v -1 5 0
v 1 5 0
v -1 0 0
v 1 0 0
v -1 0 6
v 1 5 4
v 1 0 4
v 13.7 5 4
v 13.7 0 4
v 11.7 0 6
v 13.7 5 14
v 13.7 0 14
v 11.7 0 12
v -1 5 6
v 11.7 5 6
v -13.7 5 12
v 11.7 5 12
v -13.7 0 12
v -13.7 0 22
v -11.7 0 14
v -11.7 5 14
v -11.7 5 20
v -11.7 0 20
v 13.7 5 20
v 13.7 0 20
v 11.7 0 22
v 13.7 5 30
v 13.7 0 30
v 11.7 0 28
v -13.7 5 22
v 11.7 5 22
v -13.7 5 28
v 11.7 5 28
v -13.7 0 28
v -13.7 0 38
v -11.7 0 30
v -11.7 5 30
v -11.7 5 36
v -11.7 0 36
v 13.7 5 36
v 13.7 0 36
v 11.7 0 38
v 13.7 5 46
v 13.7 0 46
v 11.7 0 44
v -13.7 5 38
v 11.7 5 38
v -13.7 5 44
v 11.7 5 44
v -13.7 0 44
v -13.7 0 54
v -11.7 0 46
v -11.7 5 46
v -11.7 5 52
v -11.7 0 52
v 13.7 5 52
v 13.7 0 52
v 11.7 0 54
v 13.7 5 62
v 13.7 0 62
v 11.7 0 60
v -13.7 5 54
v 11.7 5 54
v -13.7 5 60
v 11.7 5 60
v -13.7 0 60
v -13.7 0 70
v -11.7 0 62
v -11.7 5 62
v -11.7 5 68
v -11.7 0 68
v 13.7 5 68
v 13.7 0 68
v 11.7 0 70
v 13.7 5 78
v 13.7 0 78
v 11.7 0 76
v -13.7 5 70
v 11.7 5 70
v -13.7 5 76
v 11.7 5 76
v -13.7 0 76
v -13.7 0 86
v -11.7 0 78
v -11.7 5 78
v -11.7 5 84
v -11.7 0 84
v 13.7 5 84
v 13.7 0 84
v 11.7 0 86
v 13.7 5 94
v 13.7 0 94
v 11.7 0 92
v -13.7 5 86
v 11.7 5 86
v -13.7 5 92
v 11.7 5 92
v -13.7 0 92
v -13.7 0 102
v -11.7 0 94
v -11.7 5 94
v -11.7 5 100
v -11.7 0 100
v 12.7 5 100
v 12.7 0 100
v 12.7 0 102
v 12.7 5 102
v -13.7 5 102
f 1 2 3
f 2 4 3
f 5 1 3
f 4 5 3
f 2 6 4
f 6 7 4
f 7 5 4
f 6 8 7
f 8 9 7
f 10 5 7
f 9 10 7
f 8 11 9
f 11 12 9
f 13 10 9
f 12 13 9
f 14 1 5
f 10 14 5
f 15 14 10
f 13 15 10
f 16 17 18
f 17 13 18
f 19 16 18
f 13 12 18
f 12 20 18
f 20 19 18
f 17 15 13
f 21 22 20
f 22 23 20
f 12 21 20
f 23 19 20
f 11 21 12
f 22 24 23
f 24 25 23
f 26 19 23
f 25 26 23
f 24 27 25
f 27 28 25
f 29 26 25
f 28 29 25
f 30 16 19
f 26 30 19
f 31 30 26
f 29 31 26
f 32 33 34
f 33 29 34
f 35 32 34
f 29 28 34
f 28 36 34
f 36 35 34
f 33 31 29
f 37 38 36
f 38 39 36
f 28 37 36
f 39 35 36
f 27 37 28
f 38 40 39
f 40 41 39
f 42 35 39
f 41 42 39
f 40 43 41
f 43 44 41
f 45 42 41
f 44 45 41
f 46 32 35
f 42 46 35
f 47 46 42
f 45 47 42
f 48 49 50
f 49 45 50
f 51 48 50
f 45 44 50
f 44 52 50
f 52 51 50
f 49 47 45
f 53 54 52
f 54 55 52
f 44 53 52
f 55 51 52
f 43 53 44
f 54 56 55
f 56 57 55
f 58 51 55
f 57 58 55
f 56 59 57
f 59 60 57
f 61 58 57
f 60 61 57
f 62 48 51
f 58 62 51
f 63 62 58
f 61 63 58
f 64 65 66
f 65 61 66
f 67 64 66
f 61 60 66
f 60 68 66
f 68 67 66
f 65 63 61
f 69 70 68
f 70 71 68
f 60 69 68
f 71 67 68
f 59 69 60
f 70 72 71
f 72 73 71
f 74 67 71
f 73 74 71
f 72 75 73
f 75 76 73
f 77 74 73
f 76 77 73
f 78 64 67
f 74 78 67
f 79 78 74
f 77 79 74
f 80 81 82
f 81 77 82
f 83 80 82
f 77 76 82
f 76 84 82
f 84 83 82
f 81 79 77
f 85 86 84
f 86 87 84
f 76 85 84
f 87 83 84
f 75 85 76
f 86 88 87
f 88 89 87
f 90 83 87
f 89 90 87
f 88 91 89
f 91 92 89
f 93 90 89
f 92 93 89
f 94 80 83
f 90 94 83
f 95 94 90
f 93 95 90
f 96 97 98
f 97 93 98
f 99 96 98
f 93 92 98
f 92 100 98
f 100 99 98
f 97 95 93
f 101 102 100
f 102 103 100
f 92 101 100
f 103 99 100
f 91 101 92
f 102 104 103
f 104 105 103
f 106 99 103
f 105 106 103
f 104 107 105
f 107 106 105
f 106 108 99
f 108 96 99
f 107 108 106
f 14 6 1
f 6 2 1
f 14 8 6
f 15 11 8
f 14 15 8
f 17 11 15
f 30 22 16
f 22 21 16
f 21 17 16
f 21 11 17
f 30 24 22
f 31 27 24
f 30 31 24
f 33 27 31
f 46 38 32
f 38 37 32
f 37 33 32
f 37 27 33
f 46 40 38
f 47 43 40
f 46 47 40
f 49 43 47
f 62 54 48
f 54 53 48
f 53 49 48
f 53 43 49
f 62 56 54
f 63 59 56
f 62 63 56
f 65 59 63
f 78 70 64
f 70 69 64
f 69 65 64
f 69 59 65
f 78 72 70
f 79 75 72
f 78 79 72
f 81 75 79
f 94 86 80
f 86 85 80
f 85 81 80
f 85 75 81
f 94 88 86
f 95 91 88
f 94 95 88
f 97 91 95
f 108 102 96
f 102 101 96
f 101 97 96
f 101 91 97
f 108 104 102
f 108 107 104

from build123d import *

# Parameters (mm, degrees)
EXTRUDE_THIN1_DEPTH = 5


with BuildPart() as part:
    # Sketch1 → Extrude-Thin1 (new body)
    with BuildSketch(Plane(origin=(0, 0, 0), x_dir=(1, 0, 0), z_dir=(0, 1, 0))):
        Polygon((-1, 0), (-1, -6), (11.7, -6), (11.7, -12), (-13.7, -12), (-13.7, -22), (11.7, -22), (11.7, -28), (-13.7, -28), (-13.7, -38), (11.7, -38), (11.7, -44), (-13.7, -44), (-13.7, -54), (11.7, -54), (11.7, -60), (-13.7, -60), (-13.7, -70), (11.7, -70), (11.7, -76), (-13.7, -76), (-13.7, -86), (11.7, -86), (11.7, -92), (-13.7, -92), (-13.7, -102), (12.7, -102), (12.7, -100), (-11.7, -100), (-11.7, -94), (13.7, -94), (13.7, -84), (-11.7, -84), (-11.7, -78), (13.7, -78), (13.7, -68), (-11.7, -68), (-11.7, -62), (13.7, -62), (13.7, -52), (-11.7, -52), (-11.7, -46), (13.7, -46), (13.7, -36), (-11.7, -36), (-11.7, -30), (13.7, -30), (13.7, -20), (-11.7, -20), (-11.7, -14), (13.7, -14), (13.7, -4), (1, -4), (1, 0), align=None)
    extrude(amount=EXTRUDE_THIN1_DEPTH)


solid = part.part
